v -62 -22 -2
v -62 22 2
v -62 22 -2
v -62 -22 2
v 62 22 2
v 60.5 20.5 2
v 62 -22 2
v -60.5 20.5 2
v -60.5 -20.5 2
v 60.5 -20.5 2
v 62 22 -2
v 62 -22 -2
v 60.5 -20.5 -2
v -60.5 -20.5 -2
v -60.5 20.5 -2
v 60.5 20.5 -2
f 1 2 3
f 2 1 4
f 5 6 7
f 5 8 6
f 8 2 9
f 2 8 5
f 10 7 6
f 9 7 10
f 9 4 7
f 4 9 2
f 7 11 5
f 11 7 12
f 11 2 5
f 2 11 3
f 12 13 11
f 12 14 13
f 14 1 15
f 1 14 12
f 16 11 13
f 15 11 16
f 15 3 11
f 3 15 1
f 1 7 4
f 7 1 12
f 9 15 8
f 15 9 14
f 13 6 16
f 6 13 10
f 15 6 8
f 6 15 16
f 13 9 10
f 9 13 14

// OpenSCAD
// file: ssc_DIMENSIONS.scad
/** INCLUDE FILES **/



/***************************************************************************
 *
 *                            GLOBAL DIMENSION PARAMETERS
 *
 ***************************************************************************/

 /**  CLOCK BOX OUTSIDE DIMENSIONS  **/
 CLOCK_BOX_WIDTH          = 170;
 CLOCK_BOX_DEPTH          =  75;
 CLOCK_BOX_HEIGHT         = 75;
 CLOCK_BOX_WALL_THICKNESS =  3;

 /**  CLOCK BOX INSIDE DIMENSIONS  **/
 CLOCK_BOX_INSIDE_WIDTH = CLOCK_BOX_WIDTH - CLOCK_BOX_WALL_THICKNESS * 2;
 CLOCK_BOX_INSIDE_DEPTH = CLOCK_BOX_DEPTH - CLOCK_BOX_WALL_THICKNESS * 2;
 CLOCK_BOX_INSIDE_HEIGHT = CLOCK_BOX_HEIGHT;
 


 /** FRONT PANEL SECTION  **/
 FRONT_PANEL_WIDTH  = 180;
 FRONT_PANEL_HEIGHT =   2.5;
 FRONT_PANEL_DEPTH  =  75; 

 /**  LED DISPLAY DIMENSIONS  **/
 LED_DISPLAY_WIDTH  =  121;
 LED_DISPLAY_HEIGHT =   10;  //** LED Display height without backpack pcb
 LED_DISPLAY_DEPTH  =   41;

 /**  LED FRAME DIMENSIONS  **/
 LED_DISPLAY_FRAME_WIDTH  = LED_DISPLAY_WIDTH + 3;
 LED_DISPLAY_FRAME_HEIGHT = 4;  //LED_DISPLAY_HEIGHT;
 LED_DISPLAY_FRAME_DEPTH  = LED_DISPLAY_DEPTH + 3;
// main file
////////////////////////////////////////////////////////////////////////
//////////////////////// Unit Information  ///////////////////////////////////
/*//////////////////////////////////////////////////////////////////////
date stated   : 2021-01-21
date finished : 2021-01-21
modeler       : Olle Johansson
application   : SevenSegmentClock (ClockNet)
module        : TEST_PIPE
version       : 0.1 beta
copyright     : Pipe Dreams / Forrest Floor
subject       : Seven Segment Clock
description   : LED Fram for attaching LED-Display in box.

version history
date            description
2021-01-21	    Start of re-design

*/
$fn = 100;

include <ssc_DIMENSIONS.scad>;

/***************************************************************************
 *
 *                                LOCAL RENDER
 *                      Used to view modules locally
 *
 ***************************************************************************/
ledFrame();

 /***************************************************************************
 *
 *                                MODULES
 *
 ***************************************************************************/
 module ledFrame() {
   difference() {
     union() {
       cube([LED_DISPLAY_FRAME_WIDTH, LED_DISPLAY_FRAME_DEPTH, LED_DISPLAY_FRAME_HEIGHT], center=true);
     }
     cube([LED_DISPLAY_WIDTH, LED_DISPLAY_DEPTH, LED_DISPLAY_HEIGHT+0.1],center=true);
   }
 }
